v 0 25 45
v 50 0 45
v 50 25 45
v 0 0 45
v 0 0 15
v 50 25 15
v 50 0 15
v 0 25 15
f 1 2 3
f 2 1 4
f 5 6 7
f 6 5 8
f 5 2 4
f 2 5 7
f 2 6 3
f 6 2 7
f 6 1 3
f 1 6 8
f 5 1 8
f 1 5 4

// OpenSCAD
// Define dimensions for the rectangular block
block_length = 50;  // Reduced length to match the original model proportions
block_width = 25;   // Reduced width to match the original model proportions
block_height = 30;  // Increased height to match the original model proportions

// Adjust orientation and position
translate([0, 0, 15])  // Adjusted position to match the height of the original model
rotate([0, 0, 0])      // Corrected orientation to align with the original model
cube([block_length, block_width, block_height]);
